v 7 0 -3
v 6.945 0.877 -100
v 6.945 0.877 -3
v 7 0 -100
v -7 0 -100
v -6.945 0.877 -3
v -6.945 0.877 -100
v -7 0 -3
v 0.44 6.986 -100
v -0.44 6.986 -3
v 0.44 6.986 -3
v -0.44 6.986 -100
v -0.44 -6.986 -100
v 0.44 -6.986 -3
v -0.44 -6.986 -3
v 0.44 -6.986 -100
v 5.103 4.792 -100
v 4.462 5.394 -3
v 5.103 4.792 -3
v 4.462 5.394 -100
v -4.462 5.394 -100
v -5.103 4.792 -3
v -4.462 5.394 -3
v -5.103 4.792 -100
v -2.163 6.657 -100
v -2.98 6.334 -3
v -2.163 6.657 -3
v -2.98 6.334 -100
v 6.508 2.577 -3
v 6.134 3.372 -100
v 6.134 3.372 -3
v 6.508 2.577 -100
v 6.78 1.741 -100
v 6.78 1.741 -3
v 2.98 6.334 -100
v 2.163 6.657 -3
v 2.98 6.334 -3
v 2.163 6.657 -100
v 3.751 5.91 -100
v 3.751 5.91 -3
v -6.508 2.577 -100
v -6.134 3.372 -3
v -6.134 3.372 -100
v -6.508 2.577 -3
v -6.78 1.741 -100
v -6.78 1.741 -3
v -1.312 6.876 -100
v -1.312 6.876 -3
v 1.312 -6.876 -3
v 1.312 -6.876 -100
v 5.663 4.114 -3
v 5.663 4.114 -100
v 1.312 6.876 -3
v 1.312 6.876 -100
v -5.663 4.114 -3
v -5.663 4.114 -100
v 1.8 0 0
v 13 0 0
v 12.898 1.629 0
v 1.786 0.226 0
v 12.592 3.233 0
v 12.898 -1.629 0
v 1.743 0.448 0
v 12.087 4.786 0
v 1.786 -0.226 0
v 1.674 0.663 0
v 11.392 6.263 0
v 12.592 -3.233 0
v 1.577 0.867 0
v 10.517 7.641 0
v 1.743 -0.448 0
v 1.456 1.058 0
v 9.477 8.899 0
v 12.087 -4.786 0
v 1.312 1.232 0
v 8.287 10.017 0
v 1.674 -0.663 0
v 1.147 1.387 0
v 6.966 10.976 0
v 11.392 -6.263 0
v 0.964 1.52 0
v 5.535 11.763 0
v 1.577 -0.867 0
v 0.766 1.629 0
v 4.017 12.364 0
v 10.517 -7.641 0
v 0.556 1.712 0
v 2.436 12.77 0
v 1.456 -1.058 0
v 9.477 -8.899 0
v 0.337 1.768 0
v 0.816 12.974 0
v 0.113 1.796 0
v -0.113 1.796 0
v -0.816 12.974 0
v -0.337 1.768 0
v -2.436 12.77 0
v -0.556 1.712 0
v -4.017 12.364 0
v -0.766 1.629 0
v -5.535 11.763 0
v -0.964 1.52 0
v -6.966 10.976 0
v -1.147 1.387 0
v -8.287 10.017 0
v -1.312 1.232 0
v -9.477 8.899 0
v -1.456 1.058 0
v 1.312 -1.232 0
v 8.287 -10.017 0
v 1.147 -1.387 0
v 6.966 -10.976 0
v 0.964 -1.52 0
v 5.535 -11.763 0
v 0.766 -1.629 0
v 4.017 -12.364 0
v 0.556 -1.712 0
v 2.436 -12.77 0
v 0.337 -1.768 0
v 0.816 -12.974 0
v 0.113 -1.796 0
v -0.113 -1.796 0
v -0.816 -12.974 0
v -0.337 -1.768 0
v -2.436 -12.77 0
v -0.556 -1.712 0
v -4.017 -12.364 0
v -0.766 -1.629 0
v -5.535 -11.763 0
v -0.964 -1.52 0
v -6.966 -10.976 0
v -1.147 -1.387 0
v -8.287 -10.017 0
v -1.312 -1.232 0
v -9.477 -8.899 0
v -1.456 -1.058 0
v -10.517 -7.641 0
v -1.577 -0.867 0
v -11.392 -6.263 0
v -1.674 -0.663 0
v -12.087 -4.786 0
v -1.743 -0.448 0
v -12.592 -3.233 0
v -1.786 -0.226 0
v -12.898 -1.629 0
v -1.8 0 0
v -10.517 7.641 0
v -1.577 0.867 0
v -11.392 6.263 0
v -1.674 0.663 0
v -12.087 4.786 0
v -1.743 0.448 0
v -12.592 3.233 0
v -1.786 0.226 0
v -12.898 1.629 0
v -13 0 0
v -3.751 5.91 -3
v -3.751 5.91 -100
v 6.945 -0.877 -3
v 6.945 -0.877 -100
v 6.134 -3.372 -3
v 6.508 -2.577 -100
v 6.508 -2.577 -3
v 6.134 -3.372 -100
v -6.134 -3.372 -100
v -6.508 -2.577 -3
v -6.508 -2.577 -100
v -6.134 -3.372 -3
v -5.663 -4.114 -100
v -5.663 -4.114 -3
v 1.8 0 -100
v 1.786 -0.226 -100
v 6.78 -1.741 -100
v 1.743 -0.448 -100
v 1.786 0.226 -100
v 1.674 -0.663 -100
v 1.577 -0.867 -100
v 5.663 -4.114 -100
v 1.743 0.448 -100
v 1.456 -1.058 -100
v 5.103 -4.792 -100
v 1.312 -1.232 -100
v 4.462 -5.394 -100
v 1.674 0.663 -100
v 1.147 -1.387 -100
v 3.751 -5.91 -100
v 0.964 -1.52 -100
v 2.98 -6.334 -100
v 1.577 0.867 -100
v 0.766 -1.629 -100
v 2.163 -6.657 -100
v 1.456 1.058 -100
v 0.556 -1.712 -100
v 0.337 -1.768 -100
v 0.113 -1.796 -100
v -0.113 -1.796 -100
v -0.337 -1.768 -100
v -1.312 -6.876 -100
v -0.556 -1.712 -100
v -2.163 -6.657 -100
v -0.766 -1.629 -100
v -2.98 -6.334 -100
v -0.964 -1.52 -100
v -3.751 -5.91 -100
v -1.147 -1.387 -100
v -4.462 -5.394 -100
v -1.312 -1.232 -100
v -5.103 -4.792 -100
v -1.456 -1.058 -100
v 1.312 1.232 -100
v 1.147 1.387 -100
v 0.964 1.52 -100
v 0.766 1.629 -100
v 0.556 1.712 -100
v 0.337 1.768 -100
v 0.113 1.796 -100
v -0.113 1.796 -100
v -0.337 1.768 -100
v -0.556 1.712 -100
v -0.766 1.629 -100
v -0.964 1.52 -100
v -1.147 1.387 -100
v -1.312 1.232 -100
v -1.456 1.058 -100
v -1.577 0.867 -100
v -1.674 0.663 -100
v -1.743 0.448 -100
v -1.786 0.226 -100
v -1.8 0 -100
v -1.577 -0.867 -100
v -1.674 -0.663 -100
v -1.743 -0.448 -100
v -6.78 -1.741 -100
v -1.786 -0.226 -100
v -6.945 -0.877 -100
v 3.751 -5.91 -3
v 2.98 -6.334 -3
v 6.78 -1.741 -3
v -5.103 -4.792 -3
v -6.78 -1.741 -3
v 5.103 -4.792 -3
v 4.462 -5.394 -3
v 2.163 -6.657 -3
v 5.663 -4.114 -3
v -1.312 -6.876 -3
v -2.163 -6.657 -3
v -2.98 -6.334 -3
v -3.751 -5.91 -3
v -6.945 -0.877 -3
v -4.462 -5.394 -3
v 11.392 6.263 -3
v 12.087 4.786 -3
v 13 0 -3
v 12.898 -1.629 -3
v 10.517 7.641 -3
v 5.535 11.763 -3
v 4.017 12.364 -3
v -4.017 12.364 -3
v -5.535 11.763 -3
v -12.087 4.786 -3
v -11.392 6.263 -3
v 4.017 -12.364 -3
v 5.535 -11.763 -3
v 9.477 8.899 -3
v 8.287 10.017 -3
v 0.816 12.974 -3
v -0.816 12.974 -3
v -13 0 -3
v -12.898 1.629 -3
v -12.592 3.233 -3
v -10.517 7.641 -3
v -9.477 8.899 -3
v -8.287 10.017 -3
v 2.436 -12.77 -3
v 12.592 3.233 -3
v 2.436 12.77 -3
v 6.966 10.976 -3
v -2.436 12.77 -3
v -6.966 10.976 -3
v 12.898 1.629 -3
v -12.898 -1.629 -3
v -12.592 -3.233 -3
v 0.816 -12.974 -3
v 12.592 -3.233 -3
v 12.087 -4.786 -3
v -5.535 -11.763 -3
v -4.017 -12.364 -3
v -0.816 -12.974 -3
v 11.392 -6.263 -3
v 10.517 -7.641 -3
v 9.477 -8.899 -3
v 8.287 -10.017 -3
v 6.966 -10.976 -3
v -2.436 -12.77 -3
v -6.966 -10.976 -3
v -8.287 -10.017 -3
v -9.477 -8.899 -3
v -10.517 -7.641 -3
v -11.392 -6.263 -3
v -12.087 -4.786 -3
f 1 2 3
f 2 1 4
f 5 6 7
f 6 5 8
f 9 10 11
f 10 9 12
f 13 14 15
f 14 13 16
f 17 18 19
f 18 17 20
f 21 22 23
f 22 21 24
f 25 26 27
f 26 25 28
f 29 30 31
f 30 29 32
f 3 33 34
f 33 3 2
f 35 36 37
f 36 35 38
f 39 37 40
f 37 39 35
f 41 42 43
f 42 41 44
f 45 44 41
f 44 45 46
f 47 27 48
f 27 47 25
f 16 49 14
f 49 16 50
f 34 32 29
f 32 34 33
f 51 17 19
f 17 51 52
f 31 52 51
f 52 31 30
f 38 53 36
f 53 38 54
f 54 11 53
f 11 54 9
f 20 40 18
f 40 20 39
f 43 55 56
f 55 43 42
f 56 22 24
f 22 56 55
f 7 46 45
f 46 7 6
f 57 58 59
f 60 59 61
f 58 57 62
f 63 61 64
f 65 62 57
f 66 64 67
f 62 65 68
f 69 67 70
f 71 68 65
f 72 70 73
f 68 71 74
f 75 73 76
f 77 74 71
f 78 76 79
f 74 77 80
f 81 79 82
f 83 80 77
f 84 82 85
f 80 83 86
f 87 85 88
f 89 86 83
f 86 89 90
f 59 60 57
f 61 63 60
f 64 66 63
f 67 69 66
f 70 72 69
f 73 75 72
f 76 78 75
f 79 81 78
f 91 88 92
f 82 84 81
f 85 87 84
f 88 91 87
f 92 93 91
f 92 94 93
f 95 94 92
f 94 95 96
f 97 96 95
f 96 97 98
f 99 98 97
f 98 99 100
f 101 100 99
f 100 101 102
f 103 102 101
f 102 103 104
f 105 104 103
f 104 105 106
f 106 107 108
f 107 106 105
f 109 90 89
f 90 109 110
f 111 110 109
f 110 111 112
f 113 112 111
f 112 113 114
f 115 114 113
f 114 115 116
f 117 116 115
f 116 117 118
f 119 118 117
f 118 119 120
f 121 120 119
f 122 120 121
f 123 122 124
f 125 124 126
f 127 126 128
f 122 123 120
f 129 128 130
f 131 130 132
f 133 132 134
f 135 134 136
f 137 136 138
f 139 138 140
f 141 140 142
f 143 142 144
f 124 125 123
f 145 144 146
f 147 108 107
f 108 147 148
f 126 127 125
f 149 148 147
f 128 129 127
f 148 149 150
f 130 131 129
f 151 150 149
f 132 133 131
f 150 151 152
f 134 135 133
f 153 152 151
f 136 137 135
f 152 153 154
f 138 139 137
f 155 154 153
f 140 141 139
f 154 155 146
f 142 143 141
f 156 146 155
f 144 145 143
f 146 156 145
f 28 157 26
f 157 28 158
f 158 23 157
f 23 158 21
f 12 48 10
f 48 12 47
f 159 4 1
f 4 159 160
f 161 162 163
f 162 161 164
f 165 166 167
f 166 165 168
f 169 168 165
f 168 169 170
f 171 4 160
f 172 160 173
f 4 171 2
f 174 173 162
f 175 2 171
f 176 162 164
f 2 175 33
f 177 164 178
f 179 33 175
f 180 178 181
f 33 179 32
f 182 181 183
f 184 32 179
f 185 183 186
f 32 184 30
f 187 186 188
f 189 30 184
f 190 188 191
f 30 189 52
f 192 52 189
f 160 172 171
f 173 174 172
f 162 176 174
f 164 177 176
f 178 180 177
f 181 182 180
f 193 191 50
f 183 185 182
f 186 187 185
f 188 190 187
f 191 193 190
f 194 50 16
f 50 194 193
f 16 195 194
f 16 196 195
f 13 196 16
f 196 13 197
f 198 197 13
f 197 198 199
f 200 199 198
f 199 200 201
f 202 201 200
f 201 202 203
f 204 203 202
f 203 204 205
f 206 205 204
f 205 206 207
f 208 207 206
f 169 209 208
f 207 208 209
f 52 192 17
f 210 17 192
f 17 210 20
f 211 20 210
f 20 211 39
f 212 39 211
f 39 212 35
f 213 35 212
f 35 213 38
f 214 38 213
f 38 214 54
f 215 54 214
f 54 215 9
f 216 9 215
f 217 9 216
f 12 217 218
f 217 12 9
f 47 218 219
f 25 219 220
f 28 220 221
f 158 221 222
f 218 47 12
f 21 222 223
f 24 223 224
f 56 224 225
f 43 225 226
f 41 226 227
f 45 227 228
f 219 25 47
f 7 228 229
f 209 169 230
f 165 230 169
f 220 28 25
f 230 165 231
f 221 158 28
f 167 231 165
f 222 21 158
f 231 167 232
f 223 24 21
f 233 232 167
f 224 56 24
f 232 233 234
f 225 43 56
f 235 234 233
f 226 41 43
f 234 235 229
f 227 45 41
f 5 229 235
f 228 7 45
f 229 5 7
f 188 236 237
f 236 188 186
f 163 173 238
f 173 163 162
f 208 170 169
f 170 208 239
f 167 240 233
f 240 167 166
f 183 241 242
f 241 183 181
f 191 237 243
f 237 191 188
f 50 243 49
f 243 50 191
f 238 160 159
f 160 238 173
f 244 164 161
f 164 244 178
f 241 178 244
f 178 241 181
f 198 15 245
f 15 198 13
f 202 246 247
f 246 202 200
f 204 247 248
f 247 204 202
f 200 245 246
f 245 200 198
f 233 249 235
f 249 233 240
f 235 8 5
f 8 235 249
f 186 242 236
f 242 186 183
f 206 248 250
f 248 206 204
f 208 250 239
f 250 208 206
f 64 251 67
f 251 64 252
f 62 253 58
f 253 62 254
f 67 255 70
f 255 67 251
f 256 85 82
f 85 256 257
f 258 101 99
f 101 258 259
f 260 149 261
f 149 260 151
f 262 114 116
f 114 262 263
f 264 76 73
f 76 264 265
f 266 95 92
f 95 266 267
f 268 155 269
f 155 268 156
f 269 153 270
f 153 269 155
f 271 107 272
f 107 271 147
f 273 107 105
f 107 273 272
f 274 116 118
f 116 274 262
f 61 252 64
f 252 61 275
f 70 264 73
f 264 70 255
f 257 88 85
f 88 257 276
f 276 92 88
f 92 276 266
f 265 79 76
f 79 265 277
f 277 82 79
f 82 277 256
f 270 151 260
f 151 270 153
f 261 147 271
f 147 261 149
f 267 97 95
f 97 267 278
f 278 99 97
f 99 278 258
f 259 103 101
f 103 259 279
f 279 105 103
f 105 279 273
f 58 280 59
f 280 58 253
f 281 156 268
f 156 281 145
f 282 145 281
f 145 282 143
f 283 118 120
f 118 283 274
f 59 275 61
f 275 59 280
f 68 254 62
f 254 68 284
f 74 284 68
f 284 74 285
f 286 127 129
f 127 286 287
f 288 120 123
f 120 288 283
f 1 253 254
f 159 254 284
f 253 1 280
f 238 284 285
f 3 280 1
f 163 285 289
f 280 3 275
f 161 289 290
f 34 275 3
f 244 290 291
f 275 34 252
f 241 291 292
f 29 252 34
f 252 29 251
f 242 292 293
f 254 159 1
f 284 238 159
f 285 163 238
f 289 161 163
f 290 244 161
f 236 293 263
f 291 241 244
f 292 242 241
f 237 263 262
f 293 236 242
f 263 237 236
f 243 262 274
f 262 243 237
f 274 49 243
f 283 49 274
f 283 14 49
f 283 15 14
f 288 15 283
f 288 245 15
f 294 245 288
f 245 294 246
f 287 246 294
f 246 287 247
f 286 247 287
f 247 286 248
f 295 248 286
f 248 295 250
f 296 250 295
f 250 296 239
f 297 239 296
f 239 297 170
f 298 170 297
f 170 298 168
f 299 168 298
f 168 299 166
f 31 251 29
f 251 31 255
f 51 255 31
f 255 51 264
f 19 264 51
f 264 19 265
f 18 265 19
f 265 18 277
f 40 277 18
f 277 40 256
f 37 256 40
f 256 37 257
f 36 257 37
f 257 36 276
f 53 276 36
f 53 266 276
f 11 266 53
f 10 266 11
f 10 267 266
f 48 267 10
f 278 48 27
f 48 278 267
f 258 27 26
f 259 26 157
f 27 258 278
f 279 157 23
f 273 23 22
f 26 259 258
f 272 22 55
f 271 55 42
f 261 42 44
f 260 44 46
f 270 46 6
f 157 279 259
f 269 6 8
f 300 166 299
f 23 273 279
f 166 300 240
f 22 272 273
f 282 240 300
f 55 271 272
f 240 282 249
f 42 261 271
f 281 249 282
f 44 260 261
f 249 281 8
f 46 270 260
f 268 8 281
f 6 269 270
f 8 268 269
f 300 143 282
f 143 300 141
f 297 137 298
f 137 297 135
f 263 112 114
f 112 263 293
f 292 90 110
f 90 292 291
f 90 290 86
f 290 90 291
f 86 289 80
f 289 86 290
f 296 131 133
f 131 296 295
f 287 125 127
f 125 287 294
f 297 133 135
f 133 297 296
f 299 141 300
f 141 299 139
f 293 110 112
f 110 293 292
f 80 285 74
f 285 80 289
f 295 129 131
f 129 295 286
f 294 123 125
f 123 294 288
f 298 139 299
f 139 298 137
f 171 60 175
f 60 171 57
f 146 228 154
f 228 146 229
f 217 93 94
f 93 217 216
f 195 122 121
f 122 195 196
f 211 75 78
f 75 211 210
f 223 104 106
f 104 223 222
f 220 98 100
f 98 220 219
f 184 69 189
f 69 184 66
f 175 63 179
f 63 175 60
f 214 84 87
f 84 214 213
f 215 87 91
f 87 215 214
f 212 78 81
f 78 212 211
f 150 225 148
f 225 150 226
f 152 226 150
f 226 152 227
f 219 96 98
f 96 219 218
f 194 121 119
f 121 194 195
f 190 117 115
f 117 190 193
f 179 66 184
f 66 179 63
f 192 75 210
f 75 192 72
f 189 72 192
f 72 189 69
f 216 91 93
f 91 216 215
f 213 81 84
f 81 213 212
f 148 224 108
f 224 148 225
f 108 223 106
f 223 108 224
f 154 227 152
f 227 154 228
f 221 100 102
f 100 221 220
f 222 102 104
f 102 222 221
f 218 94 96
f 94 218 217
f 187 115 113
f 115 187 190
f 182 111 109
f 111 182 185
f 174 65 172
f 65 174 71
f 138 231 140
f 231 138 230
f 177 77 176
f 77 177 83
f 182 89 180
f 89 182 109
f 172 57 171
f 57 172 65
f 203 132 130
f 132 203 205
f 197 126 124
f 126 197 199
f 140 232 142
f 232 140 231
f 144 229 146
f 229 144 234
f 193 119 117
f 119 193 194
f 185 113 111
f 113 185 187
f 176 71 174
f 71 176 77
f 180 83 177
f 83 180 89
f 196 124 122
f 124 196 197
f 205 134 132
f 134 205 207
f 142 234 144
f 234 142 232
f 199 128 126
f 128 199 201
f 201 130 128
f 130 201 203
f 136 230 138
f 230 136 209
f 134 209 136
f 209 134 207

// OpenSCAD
$fn = 50;


difference() {
	union() {
		translate(v = [0, 0, -100.0000000000]) {
			cylinder(h = 100, r = 7.0000000000);
		}
		translate(v = [0, 0, -3.0000000000]) {
			cylinder(h = 3, r = 13.0000000000);
		}
	}
	union() {
		#translate(v = [0, 0, -100]) {
			cylinder(h = 100, r = 1.8000000000);
		}
	}
}
